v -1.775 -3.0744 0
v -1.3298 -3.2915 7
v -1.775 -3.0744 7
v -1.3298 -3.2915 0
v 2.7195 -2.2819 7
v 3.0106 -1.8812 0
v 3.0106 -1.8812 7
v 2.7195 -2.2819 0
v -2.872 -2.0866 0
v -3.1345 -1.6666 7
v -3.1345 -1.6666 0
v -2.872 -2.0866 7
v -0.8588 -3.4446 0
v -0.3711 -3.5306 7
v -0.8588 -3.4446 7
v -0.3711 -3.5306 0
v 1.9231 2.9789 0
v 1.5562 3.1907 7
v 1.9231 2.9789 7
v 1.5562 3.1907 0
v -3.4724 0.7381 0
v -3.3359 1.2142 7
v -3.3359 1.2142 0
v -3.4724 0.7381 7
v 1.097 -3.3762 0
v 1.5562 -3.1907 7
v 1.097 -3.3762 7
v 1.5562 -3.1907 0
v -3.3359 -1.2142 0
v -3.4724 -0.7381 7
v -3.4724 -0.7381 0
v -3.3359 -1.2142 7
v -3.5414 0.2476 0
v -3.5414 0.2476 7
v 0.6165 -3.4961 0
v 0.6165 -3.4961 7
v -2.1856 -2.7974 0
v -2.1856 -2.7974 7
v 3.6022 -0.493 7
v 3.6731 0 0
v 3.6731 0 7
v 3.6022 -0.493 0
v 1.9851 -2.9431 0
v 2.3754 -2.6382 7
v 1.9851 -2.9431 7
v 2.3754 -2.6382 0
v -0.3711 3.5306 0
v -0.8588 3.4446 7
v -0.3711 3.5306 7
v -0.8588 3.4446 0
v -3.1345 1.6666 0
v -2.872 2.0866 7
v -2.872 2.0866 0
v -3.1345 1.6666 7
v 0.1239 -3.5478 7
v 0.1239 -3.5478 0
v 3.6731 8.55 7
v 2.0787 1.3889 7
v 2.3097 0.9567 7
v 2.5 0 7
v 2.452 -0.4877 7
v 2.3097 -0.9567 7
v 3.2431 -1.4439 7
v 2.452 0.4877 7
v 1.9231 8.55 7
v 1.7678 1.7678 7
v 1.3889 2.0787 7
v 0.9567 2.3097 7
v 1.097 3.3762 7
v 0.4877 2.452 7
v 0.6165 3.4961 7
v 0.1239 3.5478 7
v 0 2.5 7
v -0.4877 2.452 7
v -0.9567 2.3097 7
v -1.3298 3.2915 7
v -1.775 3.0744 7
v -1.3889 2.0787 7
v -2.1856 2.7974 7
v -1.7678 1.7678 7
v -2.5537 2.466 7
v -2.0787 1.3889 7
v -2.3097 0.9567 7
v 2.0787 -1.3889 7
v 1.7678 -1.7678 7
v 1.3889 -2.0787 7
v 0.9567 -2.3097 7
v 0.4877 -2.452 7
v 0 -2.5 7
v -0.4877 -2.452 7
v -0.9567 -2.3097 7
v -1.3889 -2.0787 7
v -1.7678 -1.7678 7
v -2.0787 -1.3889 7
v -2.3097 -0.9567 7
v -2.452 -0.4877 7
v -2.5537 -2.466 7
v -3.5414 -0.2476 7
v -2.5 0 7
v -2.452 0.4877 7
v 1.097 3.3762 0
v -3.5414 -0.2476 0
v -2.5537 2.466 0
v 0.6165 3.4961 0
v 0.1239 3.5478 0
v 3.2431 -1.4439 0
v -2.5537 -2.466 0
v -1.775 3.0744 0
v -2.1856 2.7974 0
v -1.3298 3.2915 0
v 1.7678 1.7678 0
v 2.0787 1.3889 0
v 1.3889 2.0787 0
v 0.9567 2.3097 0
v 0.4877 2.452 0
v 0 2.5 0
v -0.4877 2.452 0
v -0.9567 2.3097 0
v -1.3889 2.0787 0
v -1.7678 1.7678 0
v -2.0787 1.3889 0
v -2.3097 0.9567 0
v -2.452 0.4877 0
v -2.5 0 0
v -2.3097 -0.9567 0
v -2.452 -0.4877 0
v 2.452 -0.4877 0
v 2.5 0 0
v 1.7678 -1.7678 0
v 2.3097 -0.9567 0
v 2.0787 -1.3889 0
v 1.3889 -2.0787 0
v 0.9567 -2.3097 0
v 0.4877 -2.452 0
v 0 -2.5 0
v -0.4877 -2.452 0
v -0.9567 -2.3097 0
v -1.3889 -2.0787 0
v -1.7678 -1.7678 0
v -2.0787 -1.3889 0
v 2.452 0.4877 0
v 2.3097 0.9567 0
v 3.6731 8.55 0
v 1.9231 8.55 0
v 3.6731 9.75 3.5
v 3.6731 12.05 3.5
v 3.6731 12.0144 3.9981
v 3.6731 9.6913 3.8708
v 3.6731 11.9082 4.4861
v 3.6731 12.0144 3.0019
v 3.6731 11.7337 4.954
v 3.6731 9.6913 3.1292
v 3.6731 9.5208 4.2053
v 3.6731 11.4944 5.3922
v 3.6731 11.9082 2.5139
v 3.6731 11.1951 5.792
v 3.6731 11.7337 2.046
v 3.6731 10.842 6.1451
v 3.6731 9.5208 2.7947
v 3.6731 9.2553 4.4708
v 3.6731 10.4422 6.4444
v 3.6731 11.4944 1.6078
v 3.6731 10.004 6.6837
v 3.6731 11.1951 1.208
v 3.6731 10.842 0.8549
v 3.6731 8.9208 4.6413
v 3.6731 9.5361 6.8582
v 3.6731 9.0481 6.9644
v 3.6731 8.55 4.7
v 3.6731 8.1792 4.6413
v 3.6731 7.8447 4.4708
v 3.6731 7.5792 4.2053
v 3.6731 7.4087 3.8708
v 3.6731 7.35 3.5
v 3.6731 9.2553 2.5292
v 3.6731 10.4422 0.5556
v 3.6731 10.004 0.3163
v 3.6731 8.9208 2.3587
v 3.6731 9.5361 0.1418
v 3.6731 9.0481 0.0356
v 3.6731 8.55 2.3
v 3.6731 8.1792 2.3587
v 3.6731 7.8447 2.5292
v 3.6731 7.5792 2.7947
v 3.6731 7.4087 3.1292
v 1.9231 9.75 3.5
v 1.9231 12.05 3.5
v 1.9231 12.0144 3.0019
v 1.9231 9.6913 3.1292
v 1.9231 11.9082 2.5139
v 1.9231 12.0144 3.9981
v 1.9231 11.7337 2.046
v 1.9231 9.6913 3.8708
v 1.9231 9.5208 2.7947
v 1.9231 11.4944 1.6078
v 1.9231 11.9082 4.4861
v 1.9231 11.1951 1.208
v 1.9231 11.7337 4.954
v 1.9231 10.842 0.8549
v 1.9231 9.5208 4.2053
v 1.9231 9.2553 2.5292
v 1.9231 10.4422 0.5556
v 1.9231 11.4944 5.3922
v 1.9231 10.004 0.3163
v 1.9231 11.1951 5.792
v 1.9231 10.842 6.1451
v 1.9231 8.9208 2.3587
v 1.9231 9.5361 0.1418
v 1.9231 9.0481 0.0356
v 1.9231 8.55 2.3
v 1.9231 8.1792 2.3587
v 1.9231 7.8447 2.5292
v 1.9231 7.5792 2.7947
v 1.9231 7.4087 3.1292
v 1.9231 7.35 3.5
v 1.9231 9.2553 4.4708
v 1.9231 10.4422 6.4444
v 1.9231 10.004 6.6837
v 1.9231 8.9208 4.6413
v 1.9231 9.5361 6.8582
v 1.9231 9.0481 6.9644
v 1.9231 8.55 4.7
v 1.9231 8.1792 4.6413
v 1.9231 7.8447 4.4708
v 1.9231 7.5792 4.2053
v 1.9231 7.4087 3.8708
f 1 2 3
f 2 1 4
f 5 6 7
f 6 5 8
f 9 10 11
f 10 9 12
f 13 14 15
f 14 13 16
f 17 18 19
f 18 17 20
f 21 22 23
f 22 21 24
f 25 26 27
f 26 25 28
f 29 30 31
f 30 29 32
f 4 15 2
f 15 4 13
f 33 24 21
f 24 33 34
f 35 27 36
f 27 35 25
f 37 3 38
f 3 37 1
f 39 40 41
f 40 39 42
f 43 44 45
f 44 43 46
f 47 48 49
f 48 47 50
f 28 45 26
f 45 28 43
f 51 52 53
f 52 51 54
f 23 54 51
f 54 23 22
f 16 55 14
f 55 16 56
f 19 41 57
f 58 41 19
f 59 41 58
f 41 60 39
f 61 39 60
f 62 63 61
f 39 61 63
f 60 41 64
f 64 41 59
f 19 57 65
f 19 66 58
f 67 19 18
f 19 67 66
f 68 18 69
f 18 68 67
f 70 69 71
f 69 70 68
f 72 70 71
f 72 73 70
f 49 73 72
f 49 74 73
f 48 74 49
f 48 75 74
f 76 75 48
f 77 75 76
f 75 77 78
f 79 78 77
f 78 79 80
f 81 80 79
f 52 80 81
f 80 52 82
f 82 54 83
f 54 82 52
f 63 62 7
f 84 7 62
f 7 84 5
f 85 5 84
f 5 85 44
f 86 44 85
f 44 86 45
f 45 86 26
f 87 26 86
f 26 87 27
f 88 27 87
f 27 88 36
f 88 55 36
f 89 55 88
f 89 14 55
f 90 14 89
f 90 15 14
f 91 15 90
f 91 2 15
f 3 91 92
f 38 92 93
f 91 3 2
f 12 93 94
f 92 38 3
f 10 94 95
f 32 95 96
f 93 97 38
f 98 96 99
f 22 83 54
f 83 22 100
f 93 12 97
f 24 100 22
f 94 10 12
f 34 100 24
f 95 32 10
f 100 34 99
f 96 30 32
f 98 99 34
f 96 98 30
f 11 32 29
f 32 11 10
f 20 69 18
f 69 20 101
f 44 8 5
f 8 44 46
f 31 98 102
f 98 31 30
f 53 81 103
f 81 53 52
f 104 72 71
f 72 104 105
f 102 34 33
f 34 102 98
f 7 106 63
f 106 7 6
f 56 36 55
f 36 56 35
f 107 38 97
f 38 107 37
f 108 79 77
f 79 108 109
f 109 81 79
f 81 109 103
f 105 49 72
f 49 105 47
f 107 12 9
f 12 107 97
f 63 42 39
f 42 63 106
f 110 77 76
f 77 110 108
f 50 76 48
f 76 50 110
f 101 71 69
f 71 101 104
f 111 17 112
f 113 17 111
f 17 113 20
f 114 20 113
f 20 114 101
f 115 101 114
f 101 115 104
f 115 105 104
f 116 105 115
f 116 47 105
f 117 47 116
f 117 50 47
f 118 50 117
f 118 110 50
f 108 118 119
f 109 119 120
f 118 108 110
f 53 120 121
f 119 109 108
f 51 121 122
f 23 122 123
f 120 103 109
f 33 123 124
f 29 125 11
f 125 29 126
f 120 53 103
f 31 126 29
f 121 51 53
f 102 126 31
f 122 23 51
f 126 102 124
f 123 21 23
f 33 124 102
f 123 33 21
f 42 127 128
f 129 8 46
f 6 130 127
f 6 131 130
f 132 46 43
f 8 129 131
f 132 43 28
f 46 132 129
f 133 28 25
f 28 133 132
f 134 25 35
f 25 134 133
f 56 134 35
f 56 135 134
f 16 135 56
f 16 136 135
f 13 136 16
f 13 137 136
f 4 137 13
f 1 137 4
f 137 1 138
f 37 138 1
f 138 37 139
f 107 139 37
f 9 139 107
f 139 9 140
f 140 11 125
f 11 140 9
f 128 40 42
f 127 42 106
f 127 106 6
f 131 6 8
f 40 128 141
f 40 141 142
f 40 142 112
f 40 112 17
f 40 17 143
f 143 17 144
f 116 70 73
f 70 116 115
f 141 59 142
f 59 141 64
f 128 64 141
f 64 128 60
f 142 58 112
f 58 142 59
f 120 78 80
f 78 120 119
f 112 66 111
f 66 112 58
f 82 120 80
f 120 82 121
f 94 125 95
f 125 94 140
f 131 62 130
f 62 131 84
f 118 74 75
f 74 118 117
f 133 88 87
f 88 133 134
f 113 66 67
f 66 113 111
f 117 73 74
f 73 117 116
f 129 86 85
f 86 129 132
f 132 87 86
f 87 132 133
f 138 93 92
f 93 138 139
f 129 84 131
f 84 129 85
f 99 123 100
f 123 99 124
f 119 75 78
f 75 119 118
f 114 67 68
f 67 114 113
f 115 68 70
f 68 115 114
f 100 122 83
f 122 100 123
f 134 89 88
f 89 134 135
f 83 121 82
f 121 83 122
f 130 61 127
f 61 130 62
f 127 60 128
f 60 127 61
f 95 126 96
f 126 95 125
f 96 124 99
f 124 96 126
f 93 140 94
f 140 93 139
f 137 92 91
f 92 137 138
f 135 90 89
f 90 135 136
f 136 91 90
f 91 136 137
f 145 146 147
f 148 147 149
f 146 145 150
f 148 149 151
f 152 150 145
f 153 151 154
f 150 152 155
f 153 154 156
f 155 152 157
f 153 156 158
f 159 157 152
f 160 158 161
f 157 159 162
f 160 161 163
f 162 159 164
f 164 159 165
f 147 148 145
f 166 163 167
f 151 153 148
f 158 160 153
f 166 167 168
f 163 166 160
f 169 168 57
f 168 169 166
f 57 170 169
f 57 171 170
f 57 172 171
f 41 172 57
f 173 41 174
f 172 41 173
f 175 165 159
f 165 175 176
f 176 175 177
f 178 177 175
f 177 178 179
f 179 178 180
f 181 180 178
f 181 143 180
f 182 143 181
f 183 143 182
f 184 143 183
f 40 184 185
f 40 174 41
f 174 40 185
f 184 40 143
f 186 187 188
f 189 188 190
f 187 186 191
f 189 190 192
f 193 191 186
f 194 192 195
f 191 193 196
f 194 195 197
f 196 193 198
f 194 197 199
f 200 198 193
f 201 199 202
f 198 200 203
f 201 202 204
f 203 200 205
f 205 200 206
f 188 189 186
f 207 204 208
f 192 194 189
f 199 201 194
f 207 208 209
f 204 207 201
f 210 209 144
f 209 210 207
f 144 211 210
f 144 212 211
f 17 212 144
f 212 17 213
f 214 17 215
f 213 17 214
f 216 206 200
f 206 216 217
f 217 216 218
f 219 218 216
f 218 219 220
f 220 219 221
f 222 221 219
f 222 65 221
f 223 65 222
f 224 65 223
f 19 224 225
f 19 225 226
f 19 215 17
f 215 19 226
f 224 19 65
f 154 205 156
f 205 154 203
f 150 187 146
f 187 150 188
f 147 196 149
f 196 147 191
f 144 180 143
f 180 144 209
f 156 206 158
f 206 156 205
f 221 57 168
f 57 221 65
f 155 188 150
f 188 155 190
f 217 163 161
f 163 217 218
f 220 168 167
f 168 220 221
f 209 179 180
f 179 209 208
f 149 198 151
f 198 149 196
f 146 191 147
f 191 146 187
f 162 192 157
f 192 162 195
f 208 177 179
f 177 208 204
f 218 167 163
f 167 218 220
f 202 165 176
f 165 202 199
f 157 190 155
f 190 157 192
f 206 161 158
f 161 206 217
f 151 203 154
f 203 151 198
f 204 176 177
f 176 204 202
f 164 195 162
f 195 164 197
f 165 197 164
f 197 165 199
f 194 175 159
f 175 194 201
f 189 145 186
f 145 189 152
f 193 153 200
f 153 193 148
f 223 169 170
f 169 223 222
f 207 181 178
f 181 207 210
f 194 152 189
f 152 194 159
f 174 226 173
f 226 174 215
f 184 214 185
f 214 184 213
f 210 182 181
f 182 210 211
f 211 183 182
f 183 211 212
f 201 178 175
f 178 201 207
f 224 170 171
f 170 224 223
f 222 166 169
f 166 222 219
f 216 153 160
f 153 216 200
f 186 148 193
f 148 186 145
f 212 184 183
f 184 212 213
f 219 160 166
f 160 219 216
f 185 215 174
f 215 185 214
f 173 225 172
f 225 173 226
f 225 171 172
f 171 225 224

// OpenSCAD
// file: fpv_camera_mount.scad
module fpv_camera_mount_arc(depth, screwwidth, radius = 6)
{
	res = $preview ? 10 : 50;
	intersection() {
		outrad = screwwidth / 2 + radius;
		inrad = radius - screwwidth / 2;
		difference() {
			cylinder(depth, r = outrad, $fn = res);
			cylinder(depth, r = inrad, $fn = res);
		}
		arcextend = screwwidth / 2;
		cube([outrad + arcextend, outrad + arcextend, depth]);
	}
	translate([radius, 0, 0]) cylinder(depth, r = screwwidth / 2, $fn = res);
	translate([0, radius, 0]) cylinder(depth, r = screwwidth / 2, $fn = res);
}

module fpv_camera_mount_hole(depth, screwwidth = 2)
{
	res = $preview ? 10 : 20;
	cylinder(depth, r = screwwidth * 1.2 / 2, $fn = res);
}

module fpv_camera_mount(depth, screwwidth = 2)
{
	fpv_camera_mount_full_6mm(depth, screwwidth);
	rotate([0, 0, 160]) fpv_camera_mount_half_9mm(depth, screwwidth);
}

module fpv_camera_mount_full(depth, screwwidth = 2)
{
	fpv_camera_mount_full_6mm(depth, screwwidth);
	fpv_camera_mount_full_9mm(depth, screwwidth);
}

module fpv_camera_mount_half_6mm(depth, screwwidth = 2)
{
	fpv_camera_mount_hole(depth, screwwidth);
	fpv_camera_mount_arc(depth, screwwidth, 6);
}

module fpv_camera_mount_full_6mm(depth, screwwidth = 2)
{
	rotate([0, 0, 90]) fpv_camera_mount_half_6mm(depth, screwwidth);
	rotate([0, 0, 270]) fpv_camera_mount_half_6mm(depth, screwwidth);
}

module fpv_camera_mount_half_9mm(depth, screwwidth = 2)
{
	fpv_camera_mount_hole(depth, screwwidth);
	fpv_camera_mount_arc(depth, screwwidth, 9);
}

module fpv_camera_mount_full_9mm(depth, screwwidth = 2, angle_offset = -20)
{
	rotate([0, 0, angle_offset]) fpv_camera_mount_half_9mm(depth, screwwidth);
	rotate([0, 0, 180 + angle_offset]) fpv_camera_mount_half_9mm(depth, screwwidth);
}
// main file
use <fpv_camera_mount.scad>

anti_warp = .09;
filament_width = 1.75;

function anti_warp_widen(v) = v + (filament_width * anti_warp) * 2;
function anti_warp_shrink(v) = v - (filament_width * anti_warp) * 2;

height = 7;
offset = 5;

standoff_width = 5;
standoff_wall_thickness = 1.05;

wall_thickness = 1.75;

// END OF CONFIGURATION


$fs = $preview ? 1 : 0.5;
$fa = $preview ? 10 : 5;

module standoff() {
	difference() {
		cylinder(h = height, d = standoff_width + 2 * standoff_wall_thickness);
		cylinder(h = height, d = standoff_width);
	}
}
module main() {
	difference() {
		hull() {
			standoff();
			translate([standoff_width / 2.6, 0]) cylinder(h = height, d = wall_thickness * 2);
		}
		cylinder(h = height, d = standoff_width);
	}
	difference() {
		translate([standoff_width / 2.6, 0]) {
			difference() {
				union() {
					cube([wall_thickness, offset + standoff_width / 2 + standoff_wall_thickness, height]);
					translate([0, offset + standoff_width / 2 + standoff_wall_thickness, height / 2]) rotate([0, 90]) cylinder(h = wall_thickness, d = height);
				}
				translate([0, offset + standoff_width / 2 + standoff_wall_thickness, height / 2]) rotate([0, 90]) fpv_camera_mount_hole(wall_thickness);
			}
		}
		cylinder(h = height, d = standoff_width);
	}
}

main();
